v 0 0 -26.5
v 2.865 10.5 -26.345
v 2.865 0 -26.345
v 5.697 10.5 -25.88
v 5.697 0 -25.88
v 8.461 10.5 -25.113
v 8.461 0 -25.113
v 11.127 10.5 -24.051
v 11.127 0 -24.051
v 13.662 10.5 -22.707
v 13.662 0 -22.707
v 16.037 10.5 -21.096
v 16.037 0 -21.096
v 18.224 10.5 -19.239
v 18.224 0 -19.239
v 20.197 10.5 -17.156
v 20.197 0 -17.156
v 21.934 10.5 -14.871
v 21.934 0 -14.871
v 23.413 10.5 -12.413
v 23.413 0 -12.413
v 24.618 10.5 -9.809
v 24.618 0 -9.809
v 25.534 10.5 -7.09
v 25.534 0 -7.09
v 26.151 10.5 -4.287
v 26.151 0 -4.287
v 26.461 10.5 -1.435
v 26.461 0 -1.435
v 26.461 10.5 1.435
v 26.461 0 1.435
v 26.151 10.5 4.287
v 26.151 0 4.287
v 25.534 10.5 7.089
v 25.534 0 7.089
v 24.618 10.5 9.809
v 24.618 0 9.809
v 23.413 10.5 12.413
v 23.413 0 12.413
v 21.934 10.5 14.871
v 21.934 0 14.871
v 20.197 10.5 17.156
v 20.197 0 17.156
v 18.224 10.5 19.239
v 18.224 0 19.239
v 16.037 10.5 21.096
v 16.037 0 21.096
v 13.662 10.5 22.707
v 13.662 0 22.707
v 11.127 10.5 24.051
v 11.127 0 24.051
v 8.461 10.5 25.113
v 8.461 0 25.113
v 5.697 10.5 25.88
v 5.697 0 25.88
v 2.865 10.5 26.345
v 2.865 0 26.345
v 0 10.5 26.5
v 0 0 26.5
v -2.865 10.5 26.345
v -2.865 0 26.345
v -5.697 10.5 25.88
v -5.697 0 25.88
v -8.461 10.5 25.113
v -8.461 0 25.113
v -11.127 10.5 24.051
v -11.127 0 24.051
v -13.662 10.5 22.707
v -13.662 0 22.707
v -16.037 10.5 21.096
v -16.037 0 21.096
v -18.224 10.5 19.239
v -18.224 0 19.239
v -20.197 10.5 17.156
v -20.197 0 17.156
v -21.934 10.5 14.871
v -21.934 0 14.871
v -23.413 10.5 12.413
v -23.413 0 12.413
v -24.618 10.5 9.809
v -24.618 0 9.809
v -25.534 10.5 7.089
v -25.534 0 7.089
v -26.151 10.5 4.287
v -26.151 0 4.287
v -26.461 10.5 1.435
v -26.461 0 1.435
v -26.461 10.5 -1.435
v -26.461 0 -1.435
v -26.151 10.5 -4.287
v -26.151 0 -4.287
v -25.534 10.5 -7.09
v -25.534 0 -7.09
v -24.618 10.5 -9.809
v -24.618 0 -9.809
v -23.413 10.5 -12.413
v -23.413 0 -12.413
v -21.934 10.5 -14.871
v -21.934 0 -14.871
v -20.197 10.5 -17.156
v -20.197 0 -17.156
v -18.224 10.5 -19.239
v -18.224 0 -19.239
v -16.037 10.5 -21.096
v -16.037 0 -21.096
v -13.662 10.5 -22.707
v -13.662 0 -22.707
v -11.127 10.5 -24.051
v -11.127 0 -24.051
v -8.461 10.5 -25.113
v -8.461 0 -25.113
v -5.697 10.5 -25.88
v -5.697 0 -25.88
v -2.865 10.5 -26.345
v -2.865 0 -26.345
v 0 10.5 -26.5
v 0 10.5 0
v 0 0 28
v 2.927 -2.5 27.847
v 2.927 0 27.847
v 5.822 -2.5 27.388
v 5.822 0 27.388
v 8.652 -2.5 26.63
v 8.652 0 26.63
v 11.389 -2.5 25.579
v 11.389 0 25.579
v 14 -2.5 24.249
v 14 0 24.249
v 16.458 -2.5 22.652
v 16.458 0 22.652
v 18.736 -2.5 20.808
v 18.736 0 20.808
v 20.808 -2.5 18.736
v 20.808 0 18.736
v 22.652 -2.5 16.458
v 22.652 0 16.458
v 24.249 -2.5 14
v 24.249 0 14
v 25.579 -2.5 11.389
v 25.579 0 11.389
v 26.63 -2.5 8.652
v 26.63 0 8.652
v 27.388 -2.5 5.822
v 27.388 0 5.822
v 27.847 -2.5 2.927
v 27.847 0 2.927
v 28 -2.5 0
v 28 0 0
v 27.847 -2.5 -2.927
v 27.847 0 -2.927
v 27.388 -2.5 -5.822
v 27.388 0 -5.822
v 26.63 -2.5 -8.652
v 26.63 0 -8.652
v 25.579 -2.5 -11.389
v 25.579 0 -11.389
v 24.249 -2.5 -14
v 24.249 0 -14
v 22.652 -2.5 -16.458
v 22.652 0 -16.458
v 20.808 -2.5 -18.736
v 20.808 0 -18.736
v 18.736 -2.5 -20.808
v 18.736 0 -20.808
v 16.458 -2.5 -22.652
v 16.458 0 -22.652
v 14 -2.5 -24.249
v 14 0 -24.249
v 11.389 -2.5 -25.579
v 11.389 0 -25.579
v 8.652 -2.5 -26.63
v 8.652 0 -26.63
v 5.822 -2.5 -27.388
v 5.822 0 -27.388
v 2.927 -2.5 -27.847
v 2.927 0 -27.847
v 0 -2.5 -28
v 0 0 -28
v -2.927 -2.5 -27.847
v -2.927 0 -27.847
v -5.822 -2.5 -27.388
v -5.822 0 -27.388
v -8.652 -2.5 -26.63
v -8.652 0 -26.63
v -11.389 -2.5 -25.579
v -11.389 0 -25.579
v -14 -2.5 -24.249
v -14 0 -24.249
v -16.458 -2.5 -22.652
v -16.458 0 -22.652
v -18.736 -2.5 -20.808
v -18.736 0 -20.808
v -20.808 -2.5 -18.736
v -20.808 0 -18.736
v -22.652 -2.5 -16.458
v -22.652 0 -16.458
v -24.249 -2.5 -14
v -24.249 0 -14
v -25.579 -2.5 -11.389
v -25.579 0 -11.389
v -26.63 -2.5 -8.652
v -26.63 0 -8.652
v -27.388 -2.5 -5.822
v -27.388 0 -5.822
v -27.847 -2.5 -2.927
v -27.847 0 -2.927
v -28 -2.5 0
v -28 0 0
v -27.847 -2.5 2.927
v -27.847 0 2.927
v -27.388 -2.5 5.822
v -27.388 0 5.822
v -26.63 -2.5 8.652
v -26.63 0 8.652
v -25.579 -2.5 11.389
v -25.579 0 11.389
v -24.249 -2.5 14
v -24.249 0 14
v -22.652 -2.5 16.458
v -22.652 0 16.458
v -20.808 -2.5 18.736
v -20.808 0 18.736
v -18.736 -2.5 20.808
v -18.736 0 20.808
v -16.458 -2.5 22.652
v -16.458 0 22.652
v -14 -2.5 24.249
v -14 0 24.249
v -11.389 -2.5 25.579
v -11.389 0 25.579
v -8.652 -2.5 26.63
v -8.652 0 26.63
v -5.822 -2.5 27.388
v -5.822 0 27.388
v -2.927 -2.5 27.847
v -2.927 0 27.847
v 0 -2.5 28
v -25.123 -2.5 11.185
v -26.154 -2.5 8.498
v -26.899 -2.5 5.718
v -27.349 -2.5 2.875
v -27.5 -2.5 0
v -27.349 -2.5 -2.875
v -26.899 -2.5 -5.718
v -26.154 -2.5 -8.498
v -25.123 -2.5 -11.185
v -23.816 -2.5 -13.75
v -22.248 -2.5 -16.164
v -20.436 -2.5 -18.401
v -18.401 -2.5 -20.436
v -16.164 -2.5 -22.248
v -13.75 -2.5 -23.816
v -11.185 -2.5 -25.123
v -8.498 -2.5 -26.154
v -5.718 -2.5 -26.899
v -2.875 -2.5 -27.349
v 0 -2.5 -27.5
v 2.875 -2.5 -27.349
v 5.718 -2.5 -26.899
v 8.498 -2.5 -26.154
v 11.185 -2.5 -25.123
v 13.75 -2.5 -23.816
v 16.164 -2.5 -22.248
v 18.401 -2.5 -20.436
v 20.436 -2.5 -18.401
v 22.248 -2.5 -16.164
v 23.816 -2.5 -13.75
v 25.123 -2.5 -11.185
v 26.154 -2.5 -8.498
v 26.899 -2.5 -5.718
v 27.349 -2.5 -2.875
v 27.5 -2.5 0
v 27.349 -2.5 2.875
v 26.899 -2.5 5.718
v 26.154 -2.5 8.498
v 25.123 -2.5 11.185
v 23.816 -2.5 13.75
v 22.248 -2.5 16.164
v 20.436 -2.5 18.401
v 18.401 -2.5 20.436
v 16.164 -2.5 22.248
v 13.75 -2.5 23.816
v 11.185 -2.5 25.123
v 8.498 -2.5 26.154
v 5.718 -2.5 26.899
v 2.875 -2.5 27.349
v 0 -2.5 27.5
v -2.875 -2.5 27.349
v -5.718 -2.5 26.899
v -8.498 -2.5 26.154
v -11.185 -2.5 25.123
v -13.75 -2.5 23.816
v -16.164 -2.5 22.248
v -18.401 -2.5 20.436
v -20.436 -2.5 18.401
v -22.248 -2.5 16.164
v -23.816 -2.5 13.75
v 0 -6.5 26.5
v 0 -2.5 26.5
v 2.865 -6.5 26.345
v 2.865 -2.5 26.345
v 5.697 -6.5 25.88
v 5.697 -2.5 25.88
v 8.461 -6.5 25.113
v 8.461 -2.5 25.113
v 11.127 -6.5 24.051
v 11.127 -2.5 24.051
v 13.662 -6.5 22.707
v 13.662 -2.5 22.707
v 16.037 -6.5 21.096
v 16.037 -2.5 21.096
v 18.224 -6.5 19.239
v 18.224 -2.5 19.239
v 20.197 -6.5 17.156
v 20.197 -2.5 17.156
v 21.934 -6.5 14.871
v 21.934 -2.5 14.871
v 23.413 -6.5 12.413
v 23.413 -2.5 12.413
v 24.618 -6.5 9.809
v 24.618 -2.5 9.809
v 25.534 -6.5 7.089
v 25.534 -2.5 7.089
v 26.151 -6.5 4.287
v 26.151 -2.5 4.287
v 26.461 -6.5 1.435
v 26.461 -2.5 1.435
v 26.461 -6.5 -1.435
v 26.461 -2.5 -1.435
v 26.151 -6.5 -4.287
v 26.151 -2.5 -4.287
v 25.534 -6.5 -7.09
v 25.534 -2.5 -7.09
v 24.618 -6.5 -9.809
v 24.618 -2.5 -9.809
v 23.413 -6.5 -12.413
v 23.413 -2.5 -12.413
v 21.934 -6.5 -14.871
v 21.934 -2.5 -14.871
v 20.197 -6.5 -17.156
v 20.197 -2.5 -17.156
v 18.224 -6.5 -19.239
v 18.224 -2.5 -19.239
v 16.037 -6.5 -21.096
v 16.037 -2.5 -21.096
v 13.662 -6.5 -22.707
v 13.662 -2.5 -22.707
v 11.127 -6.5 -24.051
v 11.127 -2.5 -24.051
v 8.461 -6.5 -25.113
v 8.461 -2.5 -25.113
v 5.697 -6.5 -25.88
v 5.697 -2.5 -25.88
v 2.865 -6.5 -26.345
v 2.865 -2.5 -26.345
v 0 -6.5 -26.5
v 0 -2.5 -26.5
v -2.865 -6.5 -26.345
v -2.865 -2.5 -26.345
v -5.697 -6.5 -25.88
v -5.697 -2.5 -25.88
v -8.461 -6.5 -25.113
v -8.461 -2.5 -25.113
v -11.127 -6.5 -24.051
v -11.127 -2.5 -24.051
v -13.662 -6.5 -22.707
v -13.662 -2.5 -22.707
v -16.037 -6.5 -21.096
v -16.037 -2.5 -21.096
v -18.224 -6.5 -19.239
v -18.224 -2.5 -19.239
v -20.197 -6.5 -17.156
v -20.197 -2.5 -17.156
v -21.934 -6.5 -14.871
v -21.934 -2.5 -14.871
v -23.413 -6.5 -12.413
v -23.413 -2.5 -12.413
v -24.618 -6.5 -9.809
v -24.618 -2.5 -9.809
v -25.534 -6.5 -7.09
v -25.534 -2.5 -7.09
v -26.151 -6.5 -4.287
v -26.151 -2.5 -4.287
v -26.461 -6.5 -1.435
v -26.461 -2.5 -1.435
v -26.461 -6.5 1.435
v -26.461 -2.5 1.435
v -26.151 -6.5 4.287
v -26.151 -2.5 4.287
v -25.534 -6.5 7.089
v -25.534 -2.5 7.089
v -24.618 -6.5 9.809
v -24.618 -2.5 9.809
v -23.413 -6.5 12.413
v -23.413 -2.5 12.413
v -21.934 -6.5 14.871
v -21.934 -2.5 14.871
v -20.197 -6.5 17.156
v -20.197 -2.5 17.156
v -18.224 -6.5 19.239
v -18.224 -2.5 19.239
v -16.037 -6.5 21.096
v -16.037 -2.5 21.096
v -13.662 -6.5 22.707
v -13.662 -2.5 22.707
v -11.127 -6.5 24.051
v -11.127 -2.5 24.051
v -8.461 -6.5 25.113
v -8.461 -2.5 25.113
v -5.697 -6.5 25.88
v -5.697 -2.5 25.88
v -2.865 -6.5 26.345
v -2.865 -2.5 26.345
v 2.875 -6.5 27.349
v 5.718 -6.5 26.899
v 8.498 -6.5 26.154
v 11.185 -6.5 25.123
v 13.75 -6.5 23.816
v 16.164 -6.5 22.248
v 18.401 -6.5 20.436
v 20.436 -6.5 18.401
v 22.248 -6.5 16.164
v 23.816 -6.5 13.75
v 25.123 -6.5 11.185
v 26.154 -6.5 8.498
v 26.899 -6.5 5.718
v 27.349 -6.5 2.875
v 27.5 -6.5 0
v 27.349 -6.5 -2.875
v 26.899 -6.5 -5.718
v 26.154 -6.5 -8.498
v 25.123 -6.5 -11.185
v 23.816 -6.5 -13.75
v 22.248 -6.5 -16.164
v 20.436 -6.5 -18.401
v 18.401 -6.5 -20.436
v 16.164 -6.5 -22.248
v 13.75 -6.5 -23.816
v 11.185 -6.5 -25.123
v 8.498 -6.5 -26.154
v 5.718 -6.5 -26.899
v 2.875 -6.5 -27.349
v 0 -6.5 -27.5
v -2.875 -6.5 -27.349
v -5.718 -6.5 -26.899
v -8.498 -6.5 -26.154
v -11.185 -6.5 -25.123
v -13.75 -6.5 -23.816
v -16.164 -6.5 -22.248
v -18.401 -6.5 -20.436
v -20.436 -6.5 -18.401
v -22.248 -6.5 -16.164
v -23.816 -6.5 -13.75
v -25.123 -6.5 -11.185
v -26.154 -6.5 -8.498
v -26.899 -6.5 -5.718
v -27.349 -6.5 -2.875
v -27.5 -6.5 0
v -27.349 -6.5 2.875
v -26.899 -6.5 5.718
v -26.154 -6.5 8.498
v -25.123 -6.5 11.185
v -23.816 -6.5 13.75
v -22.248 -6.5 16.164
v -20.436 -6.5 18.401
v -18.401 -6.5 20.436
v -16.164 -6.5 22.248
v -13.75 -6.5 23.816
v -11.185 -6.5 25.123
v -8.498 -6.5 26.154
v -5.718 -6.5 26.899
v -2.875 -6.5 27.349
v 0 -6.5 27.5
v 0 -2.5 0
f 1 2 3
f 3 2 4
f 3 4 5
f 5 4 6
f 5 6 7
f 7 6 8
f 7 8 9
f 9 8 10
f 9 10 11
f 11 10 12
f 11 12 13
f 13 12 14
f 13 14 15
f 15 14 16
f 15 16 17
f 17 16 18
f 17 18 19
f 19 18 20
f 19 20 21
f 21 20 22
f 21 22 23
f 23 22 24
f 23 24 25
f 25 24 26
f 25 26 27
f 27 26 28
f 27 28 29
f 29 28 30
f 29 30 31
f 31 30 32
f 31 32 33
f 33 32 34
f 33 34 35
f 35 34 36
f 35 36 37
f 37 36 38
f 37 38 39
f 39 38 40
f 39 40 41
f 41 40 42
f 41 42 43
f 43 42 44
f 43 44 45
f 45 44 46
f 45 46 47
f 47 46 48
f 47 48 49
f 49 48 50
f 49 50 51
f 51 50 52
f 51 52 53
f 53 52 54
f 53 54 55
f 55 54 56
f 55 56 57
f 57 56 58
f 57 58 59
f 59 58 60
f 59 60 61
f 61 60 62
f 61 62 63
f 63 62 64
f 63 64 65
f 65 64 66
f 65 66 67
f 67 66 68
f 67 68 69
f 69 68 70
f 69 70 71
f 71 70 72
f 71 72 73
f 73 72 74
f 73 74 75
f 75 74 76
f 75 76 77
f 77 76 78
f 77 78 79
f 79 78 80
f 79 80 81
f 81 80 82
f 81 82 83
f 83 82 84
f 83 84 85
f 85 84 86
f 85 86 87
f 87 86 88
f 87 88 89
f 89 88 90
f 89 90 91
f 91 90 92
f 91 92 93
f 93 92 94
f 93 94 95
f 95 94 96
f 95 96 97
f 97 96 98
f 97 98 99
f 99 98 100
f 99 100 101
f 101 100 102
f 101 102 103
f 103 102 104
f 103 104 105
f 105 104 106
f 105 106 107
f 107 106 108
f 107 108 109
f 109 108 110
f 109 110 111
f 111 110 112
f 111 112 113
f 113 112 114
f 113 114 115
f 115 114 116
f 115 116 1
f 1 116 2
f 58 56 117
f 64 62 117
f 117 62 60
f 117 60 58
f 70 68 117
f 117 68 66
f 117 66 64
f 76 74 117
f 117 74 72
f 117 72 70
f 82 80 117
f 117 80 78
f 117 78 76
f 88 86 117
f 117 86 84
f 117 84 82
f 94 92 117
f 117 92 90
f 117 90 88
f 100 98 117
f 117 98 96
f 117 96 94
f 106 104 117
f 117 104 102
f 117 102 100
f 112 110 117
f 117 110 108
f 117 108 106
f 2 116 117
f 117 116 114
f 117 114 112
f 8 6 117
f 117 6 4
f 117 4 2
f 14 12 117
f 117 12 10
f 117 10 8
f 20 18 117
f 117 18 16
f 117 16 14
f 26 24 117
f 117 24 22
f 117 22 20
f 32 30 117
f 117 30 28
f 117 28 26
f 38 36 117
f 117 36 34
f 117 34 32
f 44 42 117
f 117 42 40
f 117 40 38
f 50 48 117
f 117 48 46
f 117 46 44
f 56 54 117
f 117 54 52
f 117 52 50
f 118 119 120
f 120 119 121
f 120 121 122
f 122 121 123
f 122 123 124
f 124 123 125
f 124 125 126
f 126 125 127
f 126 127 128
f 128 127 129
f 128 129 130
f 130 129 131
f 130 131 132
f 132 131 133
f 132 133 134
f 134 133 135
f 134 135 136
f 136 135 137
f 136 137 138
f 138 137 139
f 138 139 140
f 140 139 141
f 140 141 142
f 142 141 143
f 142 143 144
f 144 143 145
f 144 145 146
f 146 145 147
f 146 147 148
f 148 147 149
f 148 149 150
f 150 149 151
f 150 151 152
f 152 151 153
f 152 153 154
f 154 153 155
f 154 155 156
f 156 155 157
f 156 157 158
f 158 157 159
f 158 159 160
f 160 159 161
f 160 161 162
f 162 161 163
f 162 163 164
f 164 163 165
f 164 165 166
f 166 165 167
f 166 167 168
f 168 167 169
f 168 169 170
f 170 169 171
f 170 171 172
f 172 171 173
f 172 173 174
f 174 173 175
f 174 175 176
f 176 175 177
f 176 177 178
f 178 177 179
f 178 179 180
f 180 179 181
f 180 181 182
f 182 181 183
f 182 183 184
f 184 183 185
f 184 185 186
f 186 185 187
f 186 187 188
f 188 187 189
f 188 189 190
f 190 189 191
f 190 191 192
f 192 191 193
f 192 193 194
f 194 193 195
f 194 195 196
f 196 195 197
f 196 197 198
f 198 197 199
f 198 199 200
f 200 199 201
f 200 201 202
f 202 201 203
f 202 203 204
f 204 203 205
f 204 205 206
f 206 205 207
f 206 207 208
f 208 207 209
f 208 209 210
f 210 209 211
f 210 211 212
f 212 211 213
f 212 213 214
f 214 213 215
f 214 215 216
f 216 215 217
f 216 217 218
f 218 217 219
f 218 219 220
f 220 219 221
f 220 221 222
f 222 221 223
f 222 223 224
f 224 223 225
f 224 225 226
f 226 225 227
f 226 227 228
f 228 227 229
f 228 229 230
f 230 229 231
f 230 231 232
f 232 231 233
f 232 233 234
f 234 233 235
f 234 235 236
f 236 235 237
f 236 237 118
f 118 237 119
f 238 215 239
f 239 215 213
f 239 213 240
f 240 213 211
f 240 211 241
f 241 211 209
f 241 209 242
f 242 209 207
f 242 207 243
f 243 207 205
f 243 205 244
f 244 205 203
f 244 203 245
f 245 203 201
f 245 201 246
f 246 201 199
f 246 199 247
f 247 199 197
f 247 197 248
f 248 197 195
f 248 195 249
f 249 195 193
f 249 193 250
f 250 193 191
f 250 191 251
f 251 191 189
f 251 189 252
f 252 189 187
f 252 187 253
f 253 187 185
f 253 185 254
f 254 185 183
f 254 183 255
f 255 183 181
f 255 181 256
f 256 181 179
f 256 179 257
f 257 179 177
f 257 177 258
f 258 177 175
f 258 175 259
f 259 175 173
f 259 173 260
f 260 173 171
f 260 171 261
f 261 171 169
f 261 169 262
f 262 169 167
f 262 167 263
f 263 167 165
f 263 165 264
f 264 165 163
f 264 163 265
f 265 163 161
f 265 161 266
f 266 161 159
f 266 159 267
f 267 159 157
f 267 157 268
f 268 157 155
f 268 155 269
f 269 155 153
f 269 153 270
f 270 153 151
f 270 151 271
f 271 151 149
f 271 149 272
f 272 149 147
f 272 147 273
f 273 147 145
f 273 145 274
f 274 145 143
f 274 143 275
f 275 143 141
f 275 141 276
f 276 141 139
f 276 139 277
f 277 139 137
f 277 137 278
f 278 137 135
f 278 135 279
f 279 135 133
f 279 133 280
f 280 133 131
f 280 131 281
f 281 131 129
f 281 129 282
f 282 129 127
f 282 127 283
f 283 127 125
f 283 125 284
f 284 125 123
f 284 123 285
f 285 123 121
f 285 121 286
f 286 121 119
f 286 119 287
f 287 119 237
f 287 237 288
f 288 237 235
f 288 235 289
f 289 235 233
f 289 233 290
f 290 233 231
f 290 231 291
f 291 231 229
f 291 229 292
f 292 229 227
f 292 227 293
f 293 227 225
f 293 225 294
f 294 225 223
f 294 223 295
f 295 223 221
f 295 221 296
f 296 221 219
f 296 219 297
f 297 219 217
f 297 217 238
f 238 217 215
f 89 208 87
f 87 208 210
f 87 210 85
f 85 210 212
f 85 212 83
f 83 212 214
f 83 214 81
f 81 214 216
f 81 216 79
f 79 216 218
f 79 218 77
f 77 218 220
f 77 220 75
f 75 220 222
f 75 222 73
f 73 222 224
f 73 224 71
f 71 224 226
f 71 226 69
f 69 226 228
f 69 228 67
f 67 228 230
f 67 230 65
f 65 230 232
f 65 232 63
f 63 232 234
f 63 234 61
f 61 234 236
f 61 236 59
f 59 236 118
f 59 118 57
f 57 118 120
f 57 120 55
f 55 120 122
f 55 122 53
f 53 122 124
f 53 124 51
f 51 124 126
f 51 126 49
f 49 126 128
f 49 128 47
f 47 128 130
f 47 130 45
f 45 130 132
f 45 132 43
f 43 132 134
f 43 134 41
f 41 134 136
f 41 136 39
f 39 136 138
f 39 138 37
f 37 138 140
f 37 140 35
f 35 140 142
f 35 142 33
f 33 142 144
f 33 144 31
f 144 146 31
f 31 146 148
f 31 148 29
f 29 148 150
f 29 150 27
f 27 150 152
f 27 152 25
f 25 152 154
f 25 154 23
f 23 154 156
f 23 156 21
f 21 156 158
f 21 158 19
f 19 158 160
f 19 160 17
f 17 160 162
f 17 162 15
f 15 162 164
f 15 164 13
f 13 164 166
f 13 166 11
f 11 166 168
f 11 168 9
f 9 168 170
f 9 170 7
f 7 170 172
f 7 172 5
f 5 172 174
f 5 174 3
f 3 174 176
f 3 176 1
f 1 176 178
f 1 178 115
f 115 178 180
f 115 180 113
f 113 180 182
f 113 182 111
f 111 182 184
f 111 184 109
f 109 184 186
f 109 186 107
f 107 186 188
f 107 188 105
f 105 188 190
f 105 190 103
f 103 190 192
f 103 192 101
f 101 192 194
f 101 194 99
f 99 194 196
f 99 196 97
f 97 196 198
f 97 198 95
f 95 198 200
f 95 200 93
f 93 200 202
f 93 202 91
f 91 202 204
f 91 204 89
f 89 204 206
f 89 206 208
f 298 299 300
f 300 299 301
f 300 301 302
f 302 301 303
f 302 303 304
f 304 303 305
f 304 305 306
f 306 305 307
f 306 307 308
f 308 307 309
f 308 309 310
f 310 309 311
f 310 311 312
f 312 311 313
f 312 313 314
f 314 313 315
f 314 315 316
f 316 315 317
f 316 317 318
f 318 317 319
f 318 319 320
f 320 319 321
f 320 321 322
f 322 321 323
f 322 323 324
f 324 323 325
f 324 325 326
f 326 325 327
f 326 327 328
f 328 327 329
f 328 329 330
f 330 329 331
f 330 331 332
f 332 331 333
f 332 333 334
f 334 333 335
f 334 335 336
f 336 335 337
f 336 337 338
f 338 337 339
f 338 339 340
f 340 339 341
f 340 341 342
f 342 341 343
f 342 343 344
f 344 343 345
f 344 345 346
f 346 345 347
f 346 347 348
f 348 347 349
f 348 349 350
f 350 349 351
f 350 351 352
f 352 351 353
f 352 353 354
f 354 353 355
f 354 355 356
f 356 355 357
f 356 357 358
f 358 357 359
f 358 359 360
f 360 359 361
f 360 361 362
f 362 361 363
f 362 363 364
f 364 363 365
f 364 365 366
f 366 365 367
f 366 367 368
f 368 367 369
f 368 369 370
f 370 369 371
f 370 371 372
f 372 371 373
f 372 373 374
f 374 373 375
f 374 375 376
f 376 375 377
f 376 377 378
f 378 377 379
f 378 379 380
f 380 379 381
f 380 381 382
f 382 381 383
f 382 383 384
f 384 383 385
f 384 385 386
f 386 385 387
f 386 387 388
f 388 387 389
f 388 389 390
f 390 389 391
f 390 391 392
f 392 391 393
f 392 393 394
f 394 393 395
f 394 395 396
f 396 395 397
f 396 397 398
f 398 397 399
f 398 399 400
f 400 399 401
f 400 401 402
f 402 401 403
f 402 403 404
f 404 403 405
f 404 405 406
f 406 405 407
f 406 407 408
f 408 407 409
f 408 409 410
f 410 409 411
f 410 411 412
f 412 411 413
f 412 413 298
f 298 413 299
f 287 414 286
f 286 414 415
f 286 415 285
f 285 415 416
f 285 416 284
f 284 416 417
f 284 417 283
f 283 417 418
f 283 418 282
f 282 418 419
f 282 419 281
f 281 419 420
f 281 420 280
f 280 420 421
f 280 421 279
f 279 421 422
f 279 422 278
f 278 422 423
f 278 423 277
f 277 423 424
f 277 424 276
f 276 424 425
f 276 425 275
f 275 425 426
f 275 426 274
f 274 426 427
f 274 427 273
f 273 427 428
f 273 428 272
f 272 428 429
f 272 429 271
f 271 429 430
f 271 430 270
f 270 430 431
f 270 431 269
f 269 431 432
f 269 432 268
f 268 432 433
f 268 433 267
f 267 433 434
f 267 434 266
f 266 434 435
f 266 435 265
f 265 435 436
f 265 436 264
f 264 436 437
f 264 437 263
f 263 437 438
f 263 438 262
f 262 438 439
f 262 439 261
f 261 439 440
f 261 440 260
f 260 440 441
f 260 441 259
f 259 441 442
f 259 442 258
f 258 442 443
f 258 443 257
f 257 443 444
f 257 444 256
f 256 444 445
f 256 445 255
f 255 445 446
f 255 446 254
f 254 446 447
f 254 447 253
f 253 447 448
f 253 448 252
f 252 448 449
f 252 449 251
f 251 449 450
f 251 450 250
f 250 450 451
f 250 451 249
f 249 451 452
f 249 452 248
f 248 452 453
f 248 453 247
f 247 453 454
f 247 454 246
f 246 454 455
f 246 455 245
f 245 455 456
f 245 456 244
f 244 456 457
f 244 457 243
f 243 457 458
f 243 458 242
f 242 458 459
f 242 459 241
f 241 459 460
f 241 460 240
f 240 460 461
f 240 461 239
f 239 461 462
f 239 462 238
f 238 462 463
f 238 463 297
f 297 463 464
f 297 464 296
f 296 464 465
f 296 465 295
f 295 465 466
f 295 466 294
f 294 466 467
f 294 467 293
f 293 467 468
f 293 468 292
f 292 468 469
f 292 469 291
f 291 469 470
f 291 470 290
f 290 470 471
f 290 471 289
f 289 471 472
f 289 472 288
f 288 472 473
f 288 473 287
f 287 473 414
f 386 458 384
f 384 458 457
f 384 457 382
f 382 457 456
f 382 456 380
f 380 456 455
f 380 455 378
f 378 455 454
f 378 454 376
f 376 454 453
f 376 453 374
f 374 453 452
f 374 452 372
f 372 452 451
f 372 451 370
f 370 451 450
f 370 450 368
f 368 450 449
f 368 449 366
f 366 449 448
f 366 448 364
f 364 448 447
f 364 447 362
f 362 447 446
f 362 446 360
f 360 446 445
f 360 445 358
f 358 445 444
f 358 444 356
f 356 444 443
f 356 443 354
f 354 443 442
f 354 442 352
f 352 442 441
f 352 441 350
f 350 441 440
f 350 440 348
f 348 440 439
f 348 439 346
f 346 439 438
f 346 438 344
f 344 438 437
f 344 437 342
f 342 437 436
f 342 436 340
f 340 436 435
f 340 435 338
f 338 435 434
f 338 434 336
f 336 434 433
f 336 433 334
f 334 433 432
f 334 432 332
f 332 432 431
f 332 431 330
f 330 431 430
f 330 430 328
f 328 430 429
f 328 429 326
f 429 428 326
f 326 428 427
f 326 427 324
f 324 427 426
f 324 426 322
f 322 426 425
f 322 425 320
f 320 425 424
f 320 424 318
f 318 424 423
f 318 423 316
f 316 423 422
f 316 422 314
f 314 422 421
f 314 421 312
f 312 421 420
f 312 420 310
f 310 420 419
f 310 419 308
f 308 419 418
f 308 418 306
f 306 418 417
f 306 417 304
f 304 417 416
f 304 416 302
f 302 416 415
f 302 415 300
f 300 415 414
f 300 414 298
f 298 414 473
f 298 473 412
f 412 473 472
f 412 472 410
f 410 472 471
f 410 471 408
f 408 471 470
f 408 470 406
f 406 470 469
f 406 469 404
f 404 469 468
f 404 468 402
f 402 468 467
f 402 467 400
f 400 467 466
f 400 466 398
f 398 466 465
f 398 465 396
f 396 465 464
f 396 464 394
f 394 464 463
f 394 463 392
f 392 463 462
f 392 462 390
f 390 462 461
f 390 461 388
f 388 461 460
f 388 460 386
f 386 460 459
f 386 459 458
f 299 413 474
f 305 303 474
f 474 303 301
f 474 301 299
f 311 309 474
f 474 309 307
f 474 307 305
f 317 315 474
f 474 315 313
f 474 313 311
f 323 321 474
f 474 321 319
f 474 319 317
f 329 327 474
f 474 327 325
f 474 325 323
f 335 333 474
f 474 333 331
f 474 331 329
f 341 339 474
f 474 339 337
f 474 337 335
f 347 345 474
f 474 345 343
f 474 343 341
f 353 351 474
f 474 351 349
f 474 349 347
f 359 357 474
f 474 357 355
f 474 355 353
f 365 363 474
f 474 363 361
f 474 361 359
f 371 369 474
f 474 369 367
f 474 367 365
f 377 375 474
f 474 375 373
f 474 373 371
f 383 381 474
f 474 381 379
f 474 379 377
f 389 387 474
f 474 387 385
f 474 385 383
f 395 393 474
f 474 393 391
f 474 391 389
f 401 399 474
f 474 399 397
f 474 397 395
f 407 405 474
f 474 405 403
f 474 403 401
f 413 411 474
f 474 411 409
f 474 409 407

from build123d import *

# Parameters (mm, degrees)
SKETCH1_R           = 26.5
BOSS_EXTRUDE1_DEPTH = 10.5
SKETCH1_3_R         = 28
BOSS_EXTRUDE2_DEPTH = 2.5
BOSS_EXTRUDE3_START = -6.5
SKETCH1_4_R         = 27.5
SKETCH1_4_R_2       = 26.5
BOSS_EXTRUDE3_DEPTH = 6.5


with BuildPart() as part:
    # Sketch1 → Boss-Extrude1 (new body)
    with BuildSketch(Plane(origin=(0, 0, 0), x_dir=(1, 0, 0), z_dir=(0, 1, 0))):
        Circle(SKETCH1_R)
    extrude(amount=BOSS_EXTRUDE1_DEPTH)

    # Sketch1<3> → Boss-Extrude2 (add)
    with BuildSketch(Plane(origin=(0, 0, 0), x_dir=(1, 0, 0), z_dir=(0, 1, 0))):
        Circle(SKETCH1_3_R)
    extrude(amount=-BOSS_EXTRUDE2_DEPTH)

    # Sketch1<4> → Boss-Extrude3 (add)
    with BuildSketch(Plane(origin=(0, 0, 0), x_dir=(1, 0, 0), z_dir=(0, 1, 0)).offset(BOSS_EXTRUDE3_START)):
        Circle(SKETCH1_4_R)
        Circle(SKETCH1_4_R_2, mode=Mode.SUBTRACT)
    extrude(amount=BOSS_EXTRUDE3_DEPTH)


solid = part.part
